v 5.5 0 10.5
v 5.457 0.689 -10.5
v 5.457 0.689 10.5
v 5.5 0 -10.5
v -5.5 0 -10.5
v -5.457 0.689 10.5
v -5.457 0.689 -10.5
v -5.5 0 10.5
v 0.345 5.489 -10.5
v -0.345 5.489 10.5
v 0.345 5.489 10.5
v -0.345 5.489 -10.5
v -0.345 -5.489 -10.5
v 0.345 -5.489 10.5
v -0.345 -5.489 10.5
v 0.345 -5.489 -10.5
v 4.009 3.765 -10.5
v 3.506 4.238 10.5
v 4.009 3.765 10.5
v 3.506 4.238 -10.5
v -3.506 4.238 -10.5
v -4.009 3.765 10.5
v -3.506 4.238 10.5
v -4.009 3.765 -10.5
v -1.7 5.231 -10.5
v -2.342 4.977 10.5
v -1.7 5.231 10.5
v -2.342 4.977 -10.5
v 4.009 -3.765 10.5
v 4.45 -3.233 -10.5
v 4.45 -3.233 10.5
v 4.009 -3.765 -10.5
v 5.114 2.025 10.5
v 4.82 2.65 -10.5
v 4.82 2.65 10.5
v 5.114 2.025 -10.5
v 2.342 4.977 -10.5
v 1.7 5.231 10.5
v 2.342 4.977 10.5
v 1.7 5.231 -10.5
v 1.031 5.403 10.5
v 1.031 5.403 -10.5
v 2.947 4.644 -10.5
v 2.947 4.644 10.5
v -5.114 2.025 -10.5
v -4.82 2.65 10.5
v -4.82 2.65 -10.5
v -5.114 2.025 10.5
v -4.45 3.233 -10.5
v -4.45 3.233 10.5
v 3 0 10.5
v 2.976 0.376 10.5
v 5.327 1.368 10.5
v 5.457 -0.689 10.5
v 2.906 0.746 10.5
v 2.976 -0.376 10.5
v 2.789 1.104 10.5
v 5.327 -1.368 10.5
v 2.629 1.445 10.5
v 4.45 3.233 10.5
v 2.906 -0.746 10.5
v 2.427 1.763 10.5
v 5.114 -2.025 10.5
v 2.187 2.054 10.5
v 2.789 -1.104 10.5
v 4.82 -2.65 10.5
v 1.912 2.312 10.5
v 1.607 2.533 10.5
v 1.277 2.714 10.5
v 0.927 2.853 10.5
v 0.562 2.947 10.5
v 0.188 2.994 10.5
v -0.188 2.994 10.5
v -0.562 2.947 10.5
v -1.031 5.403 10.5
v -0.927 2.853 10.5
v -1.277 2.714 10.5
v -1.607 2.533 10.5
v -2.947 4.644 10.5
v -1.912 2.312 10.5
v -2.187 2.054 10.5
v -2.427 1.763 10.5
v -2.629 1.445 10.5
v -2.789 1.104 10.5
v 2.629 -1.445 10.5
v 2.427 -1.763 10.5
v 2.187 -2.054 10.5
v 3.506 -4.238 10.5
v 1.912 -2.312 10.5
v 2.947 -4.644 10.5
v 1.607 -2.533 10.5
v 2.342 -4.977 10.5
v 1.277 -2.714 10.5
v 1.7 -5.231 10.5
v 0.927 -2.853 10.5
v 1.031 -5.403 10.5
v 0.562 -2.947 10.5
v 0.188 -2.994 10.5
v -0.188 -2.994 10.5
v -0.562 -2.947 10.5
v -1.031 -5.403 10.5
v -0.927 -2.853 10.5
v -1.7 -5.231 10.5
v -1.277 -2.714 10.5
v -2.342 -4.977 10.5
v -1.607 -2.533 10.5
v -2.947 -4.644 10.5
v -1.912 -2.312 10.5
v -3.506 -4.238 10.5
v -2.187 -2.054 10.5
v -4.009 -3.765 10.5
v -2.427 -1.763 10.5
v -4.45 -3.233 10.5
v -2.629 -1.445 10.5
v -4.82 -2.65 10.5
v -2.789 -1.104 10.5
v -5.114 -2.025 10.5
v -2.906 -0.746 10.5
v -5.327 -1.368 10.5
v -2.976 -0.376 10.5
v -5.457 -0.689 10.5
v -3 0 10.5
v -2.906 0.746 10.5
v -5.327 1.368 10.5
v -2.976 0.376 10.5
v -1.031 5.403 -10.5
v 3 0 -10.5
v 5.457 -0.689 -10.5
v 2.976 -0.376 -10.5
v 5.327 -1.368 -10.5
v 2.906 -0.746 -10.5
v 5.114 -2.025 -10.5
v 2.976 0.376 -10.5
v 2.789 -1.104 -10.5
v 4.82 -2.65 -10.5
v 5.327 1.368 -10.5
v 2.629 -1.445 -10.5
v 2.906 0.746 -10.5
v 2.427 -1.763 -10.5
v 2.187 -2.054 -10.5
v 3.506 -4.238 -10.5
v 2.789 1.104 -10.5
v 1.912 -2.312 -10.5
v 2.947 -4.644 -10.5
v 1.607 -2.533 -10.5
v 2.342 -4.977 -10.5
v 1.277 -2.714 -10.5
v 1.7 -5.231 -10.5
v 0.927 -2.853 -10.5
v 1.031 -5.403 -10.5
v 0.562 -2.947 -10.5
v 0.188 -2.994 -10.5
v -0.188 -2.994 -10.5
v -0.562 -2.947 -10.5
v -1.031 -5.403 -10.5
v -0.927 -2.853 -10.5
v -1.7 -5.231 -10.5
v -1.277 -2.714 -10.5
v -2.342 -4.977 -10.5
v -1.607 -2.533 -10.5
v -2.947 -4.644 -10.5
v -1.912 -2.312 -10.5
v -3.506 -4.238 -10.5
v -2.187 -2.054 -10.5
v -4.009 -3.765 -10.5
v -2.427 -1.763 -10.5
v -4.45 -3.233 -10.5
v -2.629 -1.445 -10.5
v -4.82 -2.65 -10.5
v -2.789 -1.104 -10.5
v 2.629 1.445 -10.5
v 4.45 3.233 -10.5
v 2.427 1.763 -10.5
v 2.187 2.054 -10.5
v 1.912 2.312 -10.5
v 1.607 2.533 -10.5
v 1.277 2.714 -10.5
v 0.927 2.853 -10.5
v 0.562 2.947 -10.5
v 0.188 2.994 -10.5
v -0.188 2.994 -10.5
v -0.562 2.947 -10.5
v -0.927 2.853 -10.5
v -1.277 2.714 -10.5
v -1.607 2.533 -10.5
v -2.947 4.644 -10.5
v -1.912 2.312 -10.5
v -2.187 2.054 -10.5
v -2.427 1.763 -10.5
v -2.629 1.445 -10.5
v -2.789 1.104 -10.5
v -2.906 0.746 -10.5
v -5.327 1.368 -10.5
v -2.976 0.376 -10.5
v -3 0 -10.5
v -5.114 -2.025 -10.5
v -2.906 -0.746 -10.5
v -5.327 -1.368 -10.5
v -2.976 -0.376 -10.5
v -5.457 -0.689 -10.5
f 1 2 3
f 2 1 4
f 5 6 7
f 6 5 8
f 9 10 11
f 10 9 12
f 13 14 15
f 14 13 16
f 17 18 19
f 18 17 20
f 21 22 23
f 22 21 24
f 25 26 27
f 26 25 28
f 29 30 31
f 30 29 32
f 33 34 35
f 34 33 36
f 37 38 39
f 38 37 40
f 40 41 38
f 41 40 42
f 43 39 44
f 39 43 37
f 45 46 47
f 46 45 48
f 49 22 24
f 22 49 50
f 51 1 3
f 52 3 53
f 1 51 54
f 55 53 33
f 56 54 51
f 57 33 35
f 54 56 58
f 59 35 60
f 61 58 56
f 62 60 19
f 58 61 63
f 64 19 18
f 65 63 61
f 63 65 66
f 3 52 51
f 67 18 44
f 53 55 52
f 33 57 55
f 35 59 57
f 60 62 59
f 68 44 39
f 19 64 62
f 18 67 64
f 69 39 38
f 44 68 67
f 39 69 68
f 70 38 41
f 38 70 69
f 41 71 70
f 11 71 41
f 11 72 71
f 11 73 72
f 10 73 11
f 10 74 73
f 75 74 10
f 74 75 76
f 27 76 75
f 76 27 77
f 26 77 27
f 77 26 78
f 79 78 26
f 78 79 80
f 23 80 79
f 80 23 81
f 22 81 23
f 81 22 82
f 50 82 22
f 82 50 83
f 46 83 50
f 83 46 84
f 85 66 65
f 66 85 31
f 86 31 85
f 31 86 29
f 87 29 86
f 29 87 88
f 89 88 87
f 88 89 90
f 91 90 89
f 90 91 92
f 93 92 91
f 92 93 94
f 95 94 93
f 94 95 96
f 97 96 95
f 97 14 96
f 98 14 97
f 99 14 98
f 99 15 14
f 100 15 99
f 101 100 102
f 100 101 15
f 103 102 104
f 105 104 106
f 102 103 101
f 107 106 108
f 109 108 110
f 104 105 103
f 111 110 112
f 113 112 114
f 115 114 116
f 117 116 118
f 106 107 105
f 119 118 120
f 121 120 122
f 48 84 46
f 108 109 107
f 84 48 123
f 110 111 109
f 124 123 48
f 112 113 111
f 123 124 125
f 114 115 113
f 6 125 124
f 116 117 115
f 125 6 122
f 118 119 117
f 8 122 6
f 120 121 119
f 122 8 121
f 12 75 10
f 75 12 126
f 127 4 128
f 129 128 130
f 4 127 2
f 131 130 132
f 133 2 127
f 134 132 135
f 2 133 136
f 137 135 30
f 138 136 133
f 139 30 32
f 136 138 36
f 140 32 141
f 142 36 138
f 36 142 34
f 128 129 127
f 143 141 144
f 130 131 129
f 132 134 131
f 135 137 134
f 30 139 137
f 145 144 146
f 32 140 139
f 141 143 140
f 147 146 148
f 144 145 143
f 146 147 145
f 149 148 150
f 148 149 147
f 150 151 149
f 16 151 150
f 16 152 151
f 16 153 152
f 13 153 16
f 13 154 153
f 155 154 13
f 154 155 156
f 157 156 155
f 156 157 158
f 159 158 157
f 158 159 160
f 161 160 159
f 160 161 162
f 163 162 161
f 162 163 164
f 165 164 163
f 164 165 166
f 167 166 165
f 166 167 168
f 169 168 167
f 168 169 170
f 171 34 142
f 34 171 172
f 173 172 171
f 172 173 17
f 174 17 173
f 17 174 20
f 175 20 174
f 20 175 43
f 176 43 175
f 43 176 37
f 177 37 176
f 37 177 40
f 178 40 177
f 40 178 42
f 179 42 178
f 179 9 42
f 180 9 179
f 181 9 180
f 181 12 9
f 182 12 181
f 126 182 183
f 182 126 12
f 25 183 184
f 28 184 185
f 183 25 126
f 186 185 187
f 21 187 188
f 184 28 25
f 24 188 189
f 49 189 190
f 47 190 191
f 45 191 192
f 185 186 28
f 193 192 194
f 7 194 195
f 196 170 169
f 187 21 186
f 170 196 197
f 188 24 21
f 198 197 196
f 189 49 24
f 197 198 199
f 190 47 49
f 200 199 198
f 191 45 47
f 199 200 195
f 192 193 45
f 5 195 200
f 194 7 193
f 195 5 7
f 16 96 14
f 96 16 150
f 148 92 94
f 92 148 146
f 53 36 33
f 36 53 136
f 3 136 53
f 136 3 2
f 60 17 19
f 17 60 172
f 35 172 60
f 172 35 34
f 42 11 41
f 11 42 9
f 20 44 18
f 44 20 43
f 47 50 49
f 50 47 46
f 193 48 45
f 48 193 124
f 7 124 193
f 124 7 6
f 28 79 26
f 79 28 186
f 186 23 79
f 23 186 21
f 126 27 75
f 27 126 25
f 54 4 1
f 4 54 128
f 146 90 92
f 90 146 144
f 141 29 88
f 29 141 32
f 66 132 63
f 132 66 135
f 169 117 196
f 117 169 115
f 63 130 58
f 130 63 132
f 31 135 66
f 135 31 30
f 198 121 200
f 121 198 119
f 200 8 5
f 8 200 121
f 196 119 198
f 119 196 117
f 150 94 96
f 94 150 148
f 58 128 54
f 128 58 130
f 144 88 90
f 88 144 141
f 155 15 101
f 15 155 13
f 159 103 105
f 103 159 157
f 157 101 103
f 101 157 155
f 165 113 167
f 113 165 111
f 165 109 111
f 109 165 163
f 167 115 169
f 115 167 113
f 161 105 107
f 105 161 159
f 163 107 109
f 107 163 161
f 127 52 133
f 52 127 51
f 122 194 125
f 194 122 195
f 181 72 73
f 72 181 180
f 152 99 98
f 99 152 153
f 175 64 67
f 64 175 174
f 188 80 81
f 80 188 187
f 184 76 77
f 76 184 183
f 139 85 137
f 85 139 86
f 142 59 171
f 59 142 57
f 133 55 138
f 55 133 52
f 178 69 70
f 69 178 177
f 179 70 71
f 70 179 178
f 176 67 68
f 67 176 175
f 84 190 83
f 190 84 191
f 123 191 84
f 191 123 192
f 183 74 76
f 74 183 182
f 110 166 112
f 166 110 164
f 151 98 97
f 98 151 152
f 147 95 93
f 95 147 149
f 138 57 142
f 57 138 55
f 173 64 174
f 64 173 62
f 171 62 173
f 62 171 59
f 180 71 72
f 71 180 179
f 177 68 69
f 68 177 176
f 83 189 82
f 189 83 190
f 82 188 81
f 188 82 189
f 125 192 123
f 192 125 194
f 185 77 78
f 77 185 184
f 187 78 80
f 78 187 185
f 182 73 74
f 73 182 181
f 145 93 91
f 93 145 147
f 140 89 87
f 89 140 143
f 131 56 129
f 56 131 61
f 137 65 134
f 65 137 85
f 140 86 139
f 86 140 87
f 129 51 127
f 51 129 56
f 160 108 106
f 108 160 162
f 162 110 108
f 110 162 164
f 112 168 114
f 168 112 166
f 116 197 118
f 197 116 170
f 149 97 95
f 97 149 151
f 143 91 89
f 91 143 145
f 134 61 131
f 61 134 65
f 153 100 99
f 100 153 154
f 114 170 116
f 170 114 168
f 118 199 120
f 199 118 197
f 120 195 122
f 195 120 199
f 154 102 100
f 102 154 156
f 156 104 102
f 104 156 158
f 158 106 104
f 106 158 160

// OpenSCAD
$fn = 50;


difference() {
	union() {
		translate(v = [0, 0, -10.5000000000]) {
			cylinder(h = 21, r = 5.5000000000);
		}
	}
	union() {
		translate(v = [0, 0, -100.0000000000]) {
			cylinder(h = 200, r = 3);
		}
	}
}
